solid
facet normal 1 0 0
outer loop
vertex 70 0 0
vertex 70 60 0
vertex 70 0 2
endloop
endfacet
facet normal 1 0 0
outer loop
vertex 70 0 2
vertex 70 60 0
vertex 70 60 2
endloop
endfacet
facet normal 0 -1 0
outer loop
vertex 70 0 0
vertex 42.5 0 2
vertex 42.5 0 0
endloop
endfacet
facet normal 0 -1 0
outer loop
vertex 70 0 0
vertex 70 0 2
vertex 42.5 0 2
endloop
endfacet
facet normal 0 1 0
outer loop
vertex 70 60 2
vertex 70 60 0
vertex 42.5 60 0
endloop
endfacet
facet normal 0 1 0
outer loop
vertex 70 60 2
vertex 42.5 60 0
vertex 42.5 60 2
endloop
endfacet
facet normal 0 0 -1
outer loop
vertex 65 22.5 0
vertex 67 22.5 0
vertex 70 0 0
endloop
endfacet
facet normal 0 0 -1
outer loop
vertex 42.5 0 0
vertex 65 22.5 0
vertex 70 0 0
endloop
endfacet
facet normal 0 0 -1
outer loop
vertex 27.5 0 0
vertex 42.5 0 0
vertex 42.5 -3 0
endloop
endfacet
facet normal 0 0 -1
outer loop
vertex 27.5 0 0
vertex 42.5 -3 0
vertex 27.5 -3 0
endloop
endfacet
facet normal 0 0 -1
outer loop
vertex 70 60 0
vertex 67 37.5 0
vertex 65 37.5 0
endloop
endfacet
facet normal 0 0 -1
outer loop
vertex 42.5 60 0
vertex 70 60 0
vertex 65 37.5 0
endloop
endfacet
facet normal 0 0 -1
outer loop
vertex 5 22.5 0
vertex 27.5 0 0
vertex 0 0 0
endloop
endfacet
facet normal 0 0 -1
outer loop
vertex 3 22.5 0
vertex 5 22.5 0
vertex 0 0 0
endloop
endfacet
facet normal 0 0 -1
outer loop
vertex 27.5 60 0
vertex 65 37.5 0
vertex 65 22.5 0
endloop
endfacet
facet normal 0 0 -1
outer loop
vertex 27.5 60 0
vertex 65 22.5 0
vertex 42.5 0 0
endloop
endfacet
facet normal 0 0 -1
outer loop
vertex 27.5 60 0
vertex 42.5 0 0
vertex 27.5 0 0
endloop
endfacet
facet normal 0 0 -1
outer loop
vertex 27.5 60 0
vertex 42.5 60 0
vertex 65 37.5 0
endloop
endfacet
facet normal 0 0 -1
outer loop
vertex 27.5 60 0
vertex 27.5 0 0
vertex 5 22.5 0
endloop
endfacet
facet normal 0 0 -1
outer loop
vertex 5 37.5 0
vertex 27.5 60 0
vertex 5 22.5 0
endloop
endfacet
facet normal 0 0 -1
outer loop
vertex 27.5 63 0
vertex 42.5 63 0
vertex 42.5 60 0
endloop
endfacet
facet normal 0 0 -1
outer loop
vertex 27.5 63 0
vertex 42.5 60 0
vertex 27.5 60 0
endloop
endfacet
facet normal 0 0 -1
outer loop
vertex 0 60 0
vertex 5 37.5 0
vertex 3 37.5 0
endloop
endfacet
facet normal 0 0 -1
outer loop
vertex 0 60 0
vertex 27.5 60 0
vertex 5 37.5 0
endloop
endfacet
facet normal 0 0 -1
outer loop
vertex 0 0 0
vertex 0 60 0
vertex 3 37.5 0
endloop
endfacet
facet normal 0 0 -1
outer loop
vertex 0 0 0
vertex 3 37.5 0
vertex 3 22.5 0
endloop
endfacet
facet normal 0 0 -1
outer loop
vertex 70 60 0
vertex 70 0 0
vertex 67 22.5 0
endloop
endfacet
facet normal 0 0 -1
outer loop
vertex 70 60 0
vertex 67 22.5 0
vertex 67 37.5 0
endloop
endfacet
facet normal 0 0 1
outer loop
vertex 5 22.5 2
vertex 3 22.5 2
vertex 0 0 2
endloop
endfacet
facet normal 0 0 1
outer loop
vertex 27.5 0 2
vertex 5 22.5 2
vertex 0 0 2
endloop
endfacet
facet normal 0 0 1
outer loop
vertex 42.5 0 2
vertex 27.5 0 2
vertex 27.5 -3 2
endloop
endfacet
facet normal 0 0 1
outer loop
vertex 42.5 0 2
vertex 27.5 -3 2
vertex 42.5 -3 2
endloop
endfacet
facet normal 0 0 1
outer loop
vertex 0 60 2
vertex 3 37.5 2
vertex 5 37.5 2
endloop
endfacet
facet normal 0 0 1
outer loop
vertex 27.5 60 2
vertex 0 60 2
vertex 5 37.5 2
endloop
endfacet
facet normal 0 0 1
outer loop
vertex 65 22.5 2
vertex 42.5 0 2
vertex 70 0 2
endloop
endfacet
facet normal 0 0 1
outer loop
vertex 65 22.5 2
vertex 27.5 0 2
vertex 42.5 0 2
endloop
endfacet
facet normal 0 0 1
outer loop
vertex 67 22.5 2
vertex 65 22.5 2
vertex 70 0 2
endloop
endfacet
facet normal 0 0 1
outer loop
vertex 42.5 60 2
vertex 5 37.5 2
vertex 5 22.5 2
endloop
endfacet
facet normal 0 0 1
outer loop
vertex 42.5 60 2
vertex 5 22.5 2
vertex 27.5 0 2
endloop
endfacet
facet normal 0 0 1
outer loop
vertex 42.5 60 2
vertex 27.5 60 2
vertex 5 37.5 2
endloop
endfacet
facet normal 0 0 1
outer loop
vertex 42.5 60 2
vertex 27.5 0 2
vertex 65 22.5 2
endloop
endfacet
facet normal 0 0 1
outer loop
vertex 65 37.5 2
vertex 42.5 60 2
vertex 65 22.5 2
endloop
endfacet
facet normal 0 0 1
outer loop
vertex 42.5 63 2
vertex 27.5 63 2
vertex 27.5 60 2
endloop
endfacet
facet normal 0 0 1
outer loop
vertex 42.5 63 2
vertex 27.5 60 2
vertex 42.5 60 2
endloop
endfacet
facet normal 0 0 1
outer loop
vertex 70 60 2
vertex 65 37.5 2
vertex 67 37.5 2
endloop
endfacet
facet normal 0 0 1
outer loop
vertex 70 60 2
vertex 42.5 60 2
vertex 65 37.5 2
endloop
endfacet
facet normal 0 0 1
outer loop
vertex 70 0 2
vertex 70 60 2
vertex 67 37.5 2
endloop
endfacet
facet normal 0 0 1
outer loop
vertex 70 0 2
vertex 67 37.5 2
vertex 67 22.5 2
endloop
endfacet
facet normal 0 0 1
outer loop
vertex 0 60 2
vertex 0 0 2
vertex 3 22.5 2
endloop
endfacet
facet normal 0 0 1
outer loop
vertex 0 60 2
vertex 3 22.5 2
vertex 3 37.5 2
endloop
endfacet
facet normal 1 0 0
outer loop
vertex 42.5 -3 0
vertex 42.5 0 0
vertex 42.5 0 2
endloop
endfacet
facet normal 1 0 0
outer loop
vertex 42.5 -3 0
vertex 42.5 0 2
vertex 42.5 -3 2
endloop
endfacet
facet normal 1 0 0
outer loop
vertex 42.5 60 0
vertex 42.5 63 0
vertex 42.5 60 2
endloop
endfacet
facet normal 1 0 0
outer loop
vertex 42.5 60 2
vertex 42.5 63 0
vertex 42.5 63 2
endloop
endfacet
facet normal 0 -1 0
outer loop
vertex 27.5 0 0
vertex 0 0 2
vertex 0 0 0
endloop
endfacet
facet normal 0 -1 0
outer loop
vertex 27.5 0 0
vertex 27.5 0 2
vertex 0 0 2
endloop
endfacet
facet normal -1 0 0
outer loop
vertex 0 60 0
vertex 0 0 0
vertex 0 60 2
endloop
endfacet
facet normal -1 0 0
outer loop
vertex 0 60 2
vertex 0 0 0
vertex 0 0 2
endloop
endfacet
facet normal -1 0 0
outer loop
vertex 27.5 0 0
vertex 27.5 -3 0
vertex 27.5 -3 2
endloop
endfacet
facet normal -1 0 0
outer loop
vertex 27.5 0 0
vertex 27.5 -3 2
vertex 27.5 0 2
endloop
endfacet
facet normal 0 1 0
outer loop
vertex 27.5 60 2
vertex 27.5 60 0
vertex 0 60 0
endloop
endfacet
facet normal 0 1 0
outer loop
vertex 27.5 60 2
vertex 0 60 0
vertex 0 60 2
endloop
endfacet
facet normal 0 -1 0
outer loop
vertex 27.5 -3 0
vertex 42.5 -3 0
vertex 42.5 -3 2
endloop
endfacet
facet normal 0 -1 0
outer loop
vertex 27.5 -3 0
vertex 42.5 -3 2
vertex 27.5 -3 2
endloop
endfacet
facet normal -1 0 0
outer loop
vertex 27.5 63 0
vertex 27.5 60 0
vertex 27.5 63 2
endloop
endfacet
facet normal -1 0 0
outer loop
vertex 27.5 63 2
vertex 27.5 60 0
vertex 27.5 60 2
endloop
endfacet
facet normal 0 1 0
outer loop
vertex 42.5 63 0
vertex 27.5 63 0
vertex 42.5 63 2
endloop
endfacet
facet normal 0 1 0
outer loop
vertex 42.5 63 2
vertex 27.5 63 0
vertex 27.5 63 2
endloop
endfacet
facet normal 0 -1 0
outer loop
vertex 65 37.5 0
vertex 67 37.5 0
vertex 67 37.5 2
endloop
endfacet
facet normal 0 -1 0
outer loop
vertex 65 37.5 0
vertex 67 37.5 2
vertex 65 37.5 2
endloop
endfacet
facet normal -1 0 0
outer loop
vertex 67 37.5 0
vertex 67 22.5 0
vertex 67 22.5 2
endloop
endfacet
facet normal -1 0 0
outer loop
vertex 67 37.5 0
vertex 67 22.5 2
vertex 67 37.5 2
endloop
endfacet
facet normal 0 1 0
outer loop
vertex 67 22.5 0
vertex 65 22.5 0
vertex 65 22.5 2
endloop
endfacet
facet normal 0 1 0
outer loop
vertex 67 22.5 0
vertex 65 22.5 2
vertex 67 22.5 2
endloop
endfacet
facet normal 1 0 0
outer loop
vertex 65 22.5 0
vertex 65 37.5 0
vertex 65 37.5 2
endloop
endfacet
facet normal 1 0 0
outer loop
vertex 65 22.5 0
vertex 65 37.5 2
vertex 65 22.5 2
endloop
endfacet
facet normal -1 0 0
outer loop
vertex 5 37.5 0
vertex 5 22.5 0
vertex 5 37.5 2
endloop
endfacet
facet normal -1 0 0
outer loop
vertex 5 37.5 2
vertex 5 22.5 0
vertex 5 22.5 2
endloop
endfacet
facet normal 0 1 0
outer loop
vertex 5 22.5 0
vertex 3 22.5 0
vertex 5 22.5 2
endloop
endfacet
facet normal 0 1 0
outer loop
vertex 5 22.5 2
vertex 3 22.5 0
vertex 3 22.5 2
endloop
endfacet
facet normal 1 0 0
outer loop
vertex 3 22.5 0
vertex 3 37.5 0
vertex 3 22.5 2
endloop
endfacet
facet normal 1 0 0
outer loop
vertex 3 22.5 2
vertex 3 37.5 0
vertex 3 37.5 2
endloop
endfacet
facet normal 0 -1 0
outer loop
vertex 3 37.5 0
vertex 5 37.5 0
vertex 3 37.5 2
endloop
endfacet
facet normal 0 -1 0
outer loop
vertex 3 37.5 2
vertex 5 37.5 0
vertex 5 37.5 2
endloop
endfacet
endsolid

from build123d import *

# Parameters (mm, degrees)
SKETCH_W     = 70
SKETCH_H     = 60
SKETCH_W_2   = 15
SKETCH_H_2   = 3
PAD_DEPTH    = 2
SKETCH001_W  = 2
SKETCH001_H  = 15
POCKET_DEPTH = 2


with BuildPart() as part:
    # Sketch → Pad (new body)
    with BuildSketch(Plane.XY):
        with Locations((35, 30)):
            Rectangle(SKETCH_W, SKETCH_H)
        with Locations((35, 61.5)):
            Rectangle(SKETCH_W_2, SKETCH_H_2)
        with Locations((35, -1.5)):
            Rectangle(SKETCH_W_2, SKETCH_H_2)
    extrude(amount=PAD_DEPTH)

    # Sketch001 → Pocket (cut)
    with BuildSketch(Plane.XY):
        with Locations((66, 30)):
            Rectangle(SKETCH001_W, SKETCH001_H)
        with Locations((4, 30)):
            Rectangle(SKETCH001_W, SKETCH001_H)
    extrude(amount=POCKET_DEPTH, mode=Mode.SUBTRACT)


solid = part.part
